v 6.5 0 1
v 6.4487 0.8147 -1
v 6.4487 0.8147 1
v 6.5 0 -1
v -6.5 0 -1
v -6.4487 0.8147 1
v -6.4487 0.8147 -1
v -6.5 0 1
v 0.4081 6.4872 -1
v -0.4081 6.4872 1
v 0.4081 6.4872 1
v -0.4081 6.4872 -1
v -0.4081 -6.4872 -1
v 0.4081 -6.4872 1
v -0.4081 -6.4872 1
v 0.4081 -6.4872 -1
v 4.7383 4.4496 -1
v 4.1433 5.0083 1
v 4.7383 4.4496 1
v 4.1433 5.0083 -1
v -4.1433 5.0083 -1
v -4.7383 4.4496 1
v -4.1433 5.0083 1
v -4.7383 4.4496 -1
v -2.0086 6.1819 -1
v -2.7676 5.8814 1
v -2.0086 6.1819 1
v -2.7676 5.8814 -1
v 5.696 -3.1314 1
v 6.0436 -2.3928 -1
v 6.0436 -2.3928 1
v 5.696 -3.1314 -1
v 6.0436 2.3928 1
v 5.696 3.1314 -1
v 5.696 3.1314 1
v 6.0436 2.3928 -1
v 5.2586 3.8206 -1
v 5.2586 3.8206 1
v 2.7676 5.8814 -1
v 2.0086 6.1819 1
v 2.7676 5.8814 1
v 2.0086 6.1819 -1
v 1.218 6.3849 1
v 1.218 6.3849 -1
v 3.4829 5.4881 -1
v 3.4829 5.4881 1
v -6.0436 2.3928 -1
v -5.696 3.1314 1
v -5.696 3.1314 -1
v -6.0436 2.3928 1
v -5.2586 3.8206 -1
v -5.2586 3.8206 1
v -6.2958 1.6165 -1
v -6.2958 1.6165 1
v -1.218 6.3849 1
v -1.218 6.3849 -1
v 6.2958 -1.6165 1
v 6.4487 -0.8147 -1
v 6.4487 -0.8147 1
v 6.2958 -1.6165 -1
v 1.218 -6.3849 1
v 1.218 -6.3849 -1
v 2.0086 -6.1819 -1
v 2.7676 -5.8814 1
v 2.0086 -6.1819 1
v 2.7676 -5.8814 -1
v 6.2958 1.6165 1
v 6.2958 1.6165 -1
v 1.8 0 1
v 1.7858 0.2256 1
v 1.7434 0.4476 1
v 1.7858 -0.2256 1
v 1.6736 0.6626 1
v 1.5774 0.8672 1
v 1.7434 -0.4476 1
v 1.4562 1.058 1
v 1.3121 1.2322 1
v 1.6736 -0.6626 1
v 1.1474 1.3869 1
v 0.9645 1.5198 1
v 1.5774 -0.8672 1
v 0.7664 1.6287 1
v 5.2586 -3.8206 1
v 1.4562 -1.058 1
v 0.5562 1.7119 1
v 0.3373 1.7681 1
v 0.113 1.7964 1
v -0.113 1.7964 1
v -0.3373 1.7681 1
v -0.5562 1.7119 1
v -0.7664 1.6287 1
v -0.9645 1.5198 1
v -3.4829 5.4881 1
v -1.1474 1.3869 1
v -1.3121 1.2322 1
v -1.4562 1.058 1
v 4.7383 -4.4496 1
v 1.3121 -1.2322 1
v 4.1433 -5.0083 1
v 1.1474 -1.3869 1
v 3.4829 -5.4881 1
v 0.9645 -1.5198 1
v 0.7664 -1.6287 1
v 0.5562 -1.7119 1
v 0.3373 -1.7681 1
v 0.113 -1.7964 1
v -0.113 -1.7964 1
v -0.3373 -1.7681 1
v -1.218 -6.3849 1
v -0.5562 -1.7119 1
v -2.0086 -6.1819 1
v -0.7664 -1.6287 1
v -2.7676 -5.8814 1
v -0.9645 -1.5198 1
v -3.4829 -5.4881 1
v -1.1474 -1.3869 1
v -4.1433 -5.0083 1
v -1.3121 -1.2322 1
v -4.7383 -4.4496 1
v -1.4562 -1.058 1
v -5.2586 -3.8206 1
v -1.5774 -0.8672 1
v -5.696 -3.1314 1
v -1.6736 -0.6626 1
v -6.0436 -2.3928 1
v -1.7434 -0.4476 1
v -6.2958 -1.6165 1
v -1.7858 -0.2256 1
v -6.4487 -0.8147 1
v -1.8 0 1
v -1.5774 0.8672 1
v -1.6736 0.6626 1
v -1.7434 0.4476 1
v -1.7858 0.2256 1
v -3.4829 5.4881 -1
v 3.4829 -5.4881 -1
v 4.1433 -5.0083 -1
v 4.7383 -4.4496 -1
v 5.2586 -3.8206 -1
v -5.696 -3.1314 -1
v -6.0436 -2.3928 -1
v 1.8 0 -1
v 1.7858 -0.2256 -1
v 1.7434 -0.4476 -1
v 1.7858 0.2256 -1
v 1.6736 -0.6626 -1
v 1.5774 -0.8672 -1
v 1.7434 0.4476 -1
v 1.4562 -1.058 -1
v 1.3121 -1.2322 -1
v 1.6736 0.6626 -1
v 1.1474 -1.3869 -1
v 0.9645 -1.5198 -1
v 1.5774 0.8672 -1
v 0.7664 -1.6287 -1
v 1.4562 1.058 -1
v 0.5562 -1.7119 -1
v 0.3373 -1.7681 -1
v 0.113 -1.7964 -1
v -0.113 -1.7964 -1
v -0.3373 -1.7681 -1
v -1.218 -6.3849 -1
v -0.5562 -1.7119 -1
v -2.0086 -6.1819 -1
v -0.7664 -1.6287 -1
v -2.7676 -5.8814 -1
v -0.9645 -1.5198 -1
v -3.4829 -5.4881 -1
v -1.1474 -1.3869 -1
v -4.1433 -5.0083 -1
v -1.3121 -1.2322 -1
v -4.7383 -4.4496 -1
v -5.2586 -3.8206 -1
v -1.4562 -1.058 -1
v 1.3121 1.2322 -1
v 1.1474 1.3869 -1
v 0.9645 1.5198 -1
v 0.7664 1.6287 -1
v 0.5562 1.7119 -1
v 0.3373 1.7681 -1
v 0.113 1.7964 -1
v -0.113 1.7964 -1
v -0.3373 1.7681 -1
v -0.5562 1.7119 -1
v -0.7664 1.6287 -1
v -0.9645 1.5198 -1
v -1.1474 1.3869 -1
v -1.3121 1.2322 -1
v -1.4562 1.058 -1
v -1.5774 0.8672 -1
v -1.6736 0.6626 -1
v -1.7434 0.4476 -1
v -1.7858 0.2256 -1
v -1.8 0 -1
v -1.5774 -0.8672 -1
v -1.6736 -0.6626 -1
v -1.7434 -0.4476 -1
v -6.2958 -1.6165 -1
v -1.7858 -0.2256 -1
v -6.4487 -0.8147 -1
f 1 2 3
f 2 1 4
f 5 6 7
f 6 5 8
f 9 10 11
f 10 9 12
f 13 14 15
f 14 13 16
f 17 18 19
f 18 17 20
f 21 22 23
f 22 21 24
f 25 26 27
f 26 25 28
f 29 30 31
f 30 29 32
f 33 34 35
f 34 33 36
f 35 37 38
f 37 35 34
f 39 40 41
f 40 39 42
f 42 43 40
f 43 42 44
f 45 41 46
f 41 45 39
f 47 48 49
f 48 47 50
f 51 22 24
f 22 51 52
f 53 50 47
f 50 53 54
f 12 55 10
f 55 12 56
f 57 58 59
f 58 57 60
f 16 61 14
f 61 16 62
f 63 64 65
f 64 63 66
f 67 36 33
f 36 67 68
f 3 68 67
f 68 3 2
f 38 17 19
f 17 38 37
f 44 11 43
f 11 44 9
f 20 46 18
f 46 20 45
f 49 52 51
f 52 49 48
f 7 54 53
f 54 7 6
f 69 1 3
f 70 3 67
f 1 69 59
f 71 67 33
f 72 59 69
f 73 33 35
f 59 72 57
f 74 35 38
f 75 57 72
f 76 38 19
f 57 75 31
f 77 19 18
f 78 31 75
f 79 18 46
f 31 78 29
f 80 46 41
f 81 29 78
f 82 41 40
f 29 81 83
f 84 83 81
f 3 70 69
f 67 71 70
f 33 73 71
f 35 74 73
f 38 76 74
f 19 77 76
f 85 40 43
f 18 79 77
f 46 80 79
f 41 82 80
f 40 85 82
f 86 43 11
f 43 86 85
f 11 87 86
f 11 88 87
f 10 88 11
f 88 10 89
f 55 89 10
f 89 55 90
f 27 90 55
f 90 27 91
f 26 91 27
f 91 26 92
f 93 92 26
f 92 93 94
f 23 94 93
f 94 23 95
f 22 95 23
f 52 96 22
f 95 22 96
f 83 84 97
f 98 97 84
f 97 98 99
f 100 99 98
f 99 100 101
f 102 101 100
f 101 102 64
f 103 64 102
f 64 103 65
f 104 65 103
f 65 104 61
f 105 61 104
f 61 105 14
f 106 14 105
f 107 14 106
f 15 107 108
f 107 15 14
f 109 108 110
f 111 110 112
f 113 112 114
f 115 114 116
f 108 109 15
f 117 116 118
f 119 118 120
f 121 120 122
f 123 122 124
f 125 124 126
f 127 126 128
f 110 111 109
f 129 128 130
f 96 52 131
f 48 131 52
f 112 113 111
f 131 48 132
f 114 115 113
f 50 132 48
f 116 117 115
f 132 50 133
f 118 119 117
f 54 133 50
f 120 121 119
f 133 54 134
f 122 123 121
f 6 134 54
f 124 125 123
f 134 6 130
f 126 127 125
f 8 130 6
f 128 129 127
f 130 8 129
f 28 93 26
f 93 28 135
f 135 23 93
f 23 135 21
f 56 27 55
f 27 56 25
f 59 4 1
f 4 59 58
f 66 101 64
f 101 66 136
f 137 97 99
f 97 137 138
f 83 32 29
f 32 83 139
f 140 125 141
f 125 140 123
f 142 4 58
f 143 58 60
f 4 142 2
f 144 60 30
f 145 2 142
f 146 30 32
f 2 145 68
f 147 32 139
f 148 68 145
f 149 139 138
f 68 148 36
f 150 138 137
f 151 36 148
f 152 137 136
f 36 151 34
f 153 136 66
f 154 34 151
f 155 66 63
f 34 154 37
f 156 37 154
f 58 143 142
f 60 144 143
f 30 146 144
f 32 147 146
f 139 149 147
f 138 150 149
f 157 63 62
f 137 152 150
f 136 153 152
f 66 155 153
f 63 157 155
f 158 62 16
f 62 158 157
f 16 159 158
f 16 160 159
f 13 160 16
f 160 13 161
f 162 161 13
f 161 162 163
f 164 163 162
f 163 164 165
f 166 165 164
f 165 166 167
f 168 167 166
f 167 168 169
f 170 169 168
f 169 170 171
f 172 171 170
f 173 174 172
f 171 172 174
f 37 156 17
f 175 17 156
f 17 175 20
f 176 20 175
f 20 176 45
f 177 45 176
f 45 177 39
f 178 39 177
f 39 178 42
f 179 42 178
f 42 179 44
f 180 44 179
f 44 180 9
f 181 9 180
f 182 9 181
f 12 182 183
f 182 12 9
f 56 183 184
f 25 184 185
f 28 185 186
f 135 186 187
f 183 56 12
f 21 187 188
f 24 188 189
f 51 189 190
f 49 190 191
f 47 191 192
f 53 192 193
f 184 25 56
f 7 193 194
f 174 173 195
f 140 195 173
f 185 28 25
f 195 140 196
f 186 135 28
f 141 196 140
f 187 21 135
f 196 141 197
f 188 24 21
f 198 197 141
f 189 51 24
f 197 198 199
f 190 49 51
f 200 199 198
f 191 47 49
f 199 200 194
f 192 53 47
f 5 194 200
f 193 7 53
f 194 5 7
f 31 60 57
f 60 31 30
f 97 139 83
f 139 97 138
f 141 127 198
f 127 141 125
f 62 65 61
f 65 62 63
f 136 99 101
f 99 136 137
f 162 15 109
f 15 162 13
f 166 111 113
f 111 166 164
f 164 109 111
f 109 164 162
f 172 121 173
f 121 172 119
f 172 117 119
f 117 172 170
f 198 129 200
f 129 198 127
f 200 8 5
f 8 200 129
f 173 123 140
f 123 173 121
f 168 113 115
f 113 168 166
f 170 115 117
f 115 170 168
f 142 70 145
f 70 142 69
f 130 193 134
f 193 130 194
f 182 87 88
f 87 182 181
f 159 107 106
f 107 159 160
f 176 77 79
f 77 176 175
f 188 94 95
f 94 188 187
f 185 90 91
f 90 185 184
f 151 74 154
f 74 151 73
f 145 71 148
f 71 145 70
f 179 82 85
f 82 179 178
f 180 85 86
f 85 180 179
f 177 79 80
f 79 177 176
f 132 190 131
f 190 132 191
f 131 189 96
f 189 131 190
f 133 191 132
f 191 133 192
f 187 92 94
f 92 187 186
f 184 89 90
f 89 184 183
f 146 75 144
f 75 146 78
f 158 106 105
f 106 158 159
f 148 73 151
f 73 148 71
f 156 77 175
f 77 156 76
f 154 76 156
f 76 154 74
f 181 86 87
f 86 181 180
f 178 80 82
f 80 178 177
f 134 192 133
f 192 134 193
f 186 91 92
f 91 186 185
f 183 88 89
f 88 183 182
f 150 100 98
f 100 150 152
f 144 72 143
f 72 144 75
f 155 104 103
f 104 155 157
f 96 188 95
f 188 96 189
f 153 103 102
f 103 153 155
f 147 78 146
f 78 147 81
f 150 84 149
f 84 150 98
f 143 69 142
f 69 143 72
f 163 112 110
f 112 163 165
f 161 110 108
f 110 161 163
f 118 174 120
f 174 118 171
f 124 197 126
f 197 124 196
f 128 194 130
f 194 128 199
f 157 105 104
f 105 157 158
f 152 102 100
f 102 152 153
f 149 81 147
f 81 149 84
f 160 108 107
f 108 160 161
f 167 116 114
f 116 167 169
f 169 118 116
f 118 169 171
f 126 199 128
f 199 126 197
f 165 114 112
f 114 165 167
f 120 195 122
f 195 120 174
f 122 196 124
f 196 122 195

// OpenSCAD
$fn = 50;


difference() {
	union() {
		translate(v = [0, 0, -1.0000000000]) {
			cylinder(h = 2, r = 6.5000000000);
		}
	}
	union() {
		translate(v = [0, 0, -100.0000000000]) {
			cylinder(h = 200, r = 1.8000000000);
		}
	}
}
